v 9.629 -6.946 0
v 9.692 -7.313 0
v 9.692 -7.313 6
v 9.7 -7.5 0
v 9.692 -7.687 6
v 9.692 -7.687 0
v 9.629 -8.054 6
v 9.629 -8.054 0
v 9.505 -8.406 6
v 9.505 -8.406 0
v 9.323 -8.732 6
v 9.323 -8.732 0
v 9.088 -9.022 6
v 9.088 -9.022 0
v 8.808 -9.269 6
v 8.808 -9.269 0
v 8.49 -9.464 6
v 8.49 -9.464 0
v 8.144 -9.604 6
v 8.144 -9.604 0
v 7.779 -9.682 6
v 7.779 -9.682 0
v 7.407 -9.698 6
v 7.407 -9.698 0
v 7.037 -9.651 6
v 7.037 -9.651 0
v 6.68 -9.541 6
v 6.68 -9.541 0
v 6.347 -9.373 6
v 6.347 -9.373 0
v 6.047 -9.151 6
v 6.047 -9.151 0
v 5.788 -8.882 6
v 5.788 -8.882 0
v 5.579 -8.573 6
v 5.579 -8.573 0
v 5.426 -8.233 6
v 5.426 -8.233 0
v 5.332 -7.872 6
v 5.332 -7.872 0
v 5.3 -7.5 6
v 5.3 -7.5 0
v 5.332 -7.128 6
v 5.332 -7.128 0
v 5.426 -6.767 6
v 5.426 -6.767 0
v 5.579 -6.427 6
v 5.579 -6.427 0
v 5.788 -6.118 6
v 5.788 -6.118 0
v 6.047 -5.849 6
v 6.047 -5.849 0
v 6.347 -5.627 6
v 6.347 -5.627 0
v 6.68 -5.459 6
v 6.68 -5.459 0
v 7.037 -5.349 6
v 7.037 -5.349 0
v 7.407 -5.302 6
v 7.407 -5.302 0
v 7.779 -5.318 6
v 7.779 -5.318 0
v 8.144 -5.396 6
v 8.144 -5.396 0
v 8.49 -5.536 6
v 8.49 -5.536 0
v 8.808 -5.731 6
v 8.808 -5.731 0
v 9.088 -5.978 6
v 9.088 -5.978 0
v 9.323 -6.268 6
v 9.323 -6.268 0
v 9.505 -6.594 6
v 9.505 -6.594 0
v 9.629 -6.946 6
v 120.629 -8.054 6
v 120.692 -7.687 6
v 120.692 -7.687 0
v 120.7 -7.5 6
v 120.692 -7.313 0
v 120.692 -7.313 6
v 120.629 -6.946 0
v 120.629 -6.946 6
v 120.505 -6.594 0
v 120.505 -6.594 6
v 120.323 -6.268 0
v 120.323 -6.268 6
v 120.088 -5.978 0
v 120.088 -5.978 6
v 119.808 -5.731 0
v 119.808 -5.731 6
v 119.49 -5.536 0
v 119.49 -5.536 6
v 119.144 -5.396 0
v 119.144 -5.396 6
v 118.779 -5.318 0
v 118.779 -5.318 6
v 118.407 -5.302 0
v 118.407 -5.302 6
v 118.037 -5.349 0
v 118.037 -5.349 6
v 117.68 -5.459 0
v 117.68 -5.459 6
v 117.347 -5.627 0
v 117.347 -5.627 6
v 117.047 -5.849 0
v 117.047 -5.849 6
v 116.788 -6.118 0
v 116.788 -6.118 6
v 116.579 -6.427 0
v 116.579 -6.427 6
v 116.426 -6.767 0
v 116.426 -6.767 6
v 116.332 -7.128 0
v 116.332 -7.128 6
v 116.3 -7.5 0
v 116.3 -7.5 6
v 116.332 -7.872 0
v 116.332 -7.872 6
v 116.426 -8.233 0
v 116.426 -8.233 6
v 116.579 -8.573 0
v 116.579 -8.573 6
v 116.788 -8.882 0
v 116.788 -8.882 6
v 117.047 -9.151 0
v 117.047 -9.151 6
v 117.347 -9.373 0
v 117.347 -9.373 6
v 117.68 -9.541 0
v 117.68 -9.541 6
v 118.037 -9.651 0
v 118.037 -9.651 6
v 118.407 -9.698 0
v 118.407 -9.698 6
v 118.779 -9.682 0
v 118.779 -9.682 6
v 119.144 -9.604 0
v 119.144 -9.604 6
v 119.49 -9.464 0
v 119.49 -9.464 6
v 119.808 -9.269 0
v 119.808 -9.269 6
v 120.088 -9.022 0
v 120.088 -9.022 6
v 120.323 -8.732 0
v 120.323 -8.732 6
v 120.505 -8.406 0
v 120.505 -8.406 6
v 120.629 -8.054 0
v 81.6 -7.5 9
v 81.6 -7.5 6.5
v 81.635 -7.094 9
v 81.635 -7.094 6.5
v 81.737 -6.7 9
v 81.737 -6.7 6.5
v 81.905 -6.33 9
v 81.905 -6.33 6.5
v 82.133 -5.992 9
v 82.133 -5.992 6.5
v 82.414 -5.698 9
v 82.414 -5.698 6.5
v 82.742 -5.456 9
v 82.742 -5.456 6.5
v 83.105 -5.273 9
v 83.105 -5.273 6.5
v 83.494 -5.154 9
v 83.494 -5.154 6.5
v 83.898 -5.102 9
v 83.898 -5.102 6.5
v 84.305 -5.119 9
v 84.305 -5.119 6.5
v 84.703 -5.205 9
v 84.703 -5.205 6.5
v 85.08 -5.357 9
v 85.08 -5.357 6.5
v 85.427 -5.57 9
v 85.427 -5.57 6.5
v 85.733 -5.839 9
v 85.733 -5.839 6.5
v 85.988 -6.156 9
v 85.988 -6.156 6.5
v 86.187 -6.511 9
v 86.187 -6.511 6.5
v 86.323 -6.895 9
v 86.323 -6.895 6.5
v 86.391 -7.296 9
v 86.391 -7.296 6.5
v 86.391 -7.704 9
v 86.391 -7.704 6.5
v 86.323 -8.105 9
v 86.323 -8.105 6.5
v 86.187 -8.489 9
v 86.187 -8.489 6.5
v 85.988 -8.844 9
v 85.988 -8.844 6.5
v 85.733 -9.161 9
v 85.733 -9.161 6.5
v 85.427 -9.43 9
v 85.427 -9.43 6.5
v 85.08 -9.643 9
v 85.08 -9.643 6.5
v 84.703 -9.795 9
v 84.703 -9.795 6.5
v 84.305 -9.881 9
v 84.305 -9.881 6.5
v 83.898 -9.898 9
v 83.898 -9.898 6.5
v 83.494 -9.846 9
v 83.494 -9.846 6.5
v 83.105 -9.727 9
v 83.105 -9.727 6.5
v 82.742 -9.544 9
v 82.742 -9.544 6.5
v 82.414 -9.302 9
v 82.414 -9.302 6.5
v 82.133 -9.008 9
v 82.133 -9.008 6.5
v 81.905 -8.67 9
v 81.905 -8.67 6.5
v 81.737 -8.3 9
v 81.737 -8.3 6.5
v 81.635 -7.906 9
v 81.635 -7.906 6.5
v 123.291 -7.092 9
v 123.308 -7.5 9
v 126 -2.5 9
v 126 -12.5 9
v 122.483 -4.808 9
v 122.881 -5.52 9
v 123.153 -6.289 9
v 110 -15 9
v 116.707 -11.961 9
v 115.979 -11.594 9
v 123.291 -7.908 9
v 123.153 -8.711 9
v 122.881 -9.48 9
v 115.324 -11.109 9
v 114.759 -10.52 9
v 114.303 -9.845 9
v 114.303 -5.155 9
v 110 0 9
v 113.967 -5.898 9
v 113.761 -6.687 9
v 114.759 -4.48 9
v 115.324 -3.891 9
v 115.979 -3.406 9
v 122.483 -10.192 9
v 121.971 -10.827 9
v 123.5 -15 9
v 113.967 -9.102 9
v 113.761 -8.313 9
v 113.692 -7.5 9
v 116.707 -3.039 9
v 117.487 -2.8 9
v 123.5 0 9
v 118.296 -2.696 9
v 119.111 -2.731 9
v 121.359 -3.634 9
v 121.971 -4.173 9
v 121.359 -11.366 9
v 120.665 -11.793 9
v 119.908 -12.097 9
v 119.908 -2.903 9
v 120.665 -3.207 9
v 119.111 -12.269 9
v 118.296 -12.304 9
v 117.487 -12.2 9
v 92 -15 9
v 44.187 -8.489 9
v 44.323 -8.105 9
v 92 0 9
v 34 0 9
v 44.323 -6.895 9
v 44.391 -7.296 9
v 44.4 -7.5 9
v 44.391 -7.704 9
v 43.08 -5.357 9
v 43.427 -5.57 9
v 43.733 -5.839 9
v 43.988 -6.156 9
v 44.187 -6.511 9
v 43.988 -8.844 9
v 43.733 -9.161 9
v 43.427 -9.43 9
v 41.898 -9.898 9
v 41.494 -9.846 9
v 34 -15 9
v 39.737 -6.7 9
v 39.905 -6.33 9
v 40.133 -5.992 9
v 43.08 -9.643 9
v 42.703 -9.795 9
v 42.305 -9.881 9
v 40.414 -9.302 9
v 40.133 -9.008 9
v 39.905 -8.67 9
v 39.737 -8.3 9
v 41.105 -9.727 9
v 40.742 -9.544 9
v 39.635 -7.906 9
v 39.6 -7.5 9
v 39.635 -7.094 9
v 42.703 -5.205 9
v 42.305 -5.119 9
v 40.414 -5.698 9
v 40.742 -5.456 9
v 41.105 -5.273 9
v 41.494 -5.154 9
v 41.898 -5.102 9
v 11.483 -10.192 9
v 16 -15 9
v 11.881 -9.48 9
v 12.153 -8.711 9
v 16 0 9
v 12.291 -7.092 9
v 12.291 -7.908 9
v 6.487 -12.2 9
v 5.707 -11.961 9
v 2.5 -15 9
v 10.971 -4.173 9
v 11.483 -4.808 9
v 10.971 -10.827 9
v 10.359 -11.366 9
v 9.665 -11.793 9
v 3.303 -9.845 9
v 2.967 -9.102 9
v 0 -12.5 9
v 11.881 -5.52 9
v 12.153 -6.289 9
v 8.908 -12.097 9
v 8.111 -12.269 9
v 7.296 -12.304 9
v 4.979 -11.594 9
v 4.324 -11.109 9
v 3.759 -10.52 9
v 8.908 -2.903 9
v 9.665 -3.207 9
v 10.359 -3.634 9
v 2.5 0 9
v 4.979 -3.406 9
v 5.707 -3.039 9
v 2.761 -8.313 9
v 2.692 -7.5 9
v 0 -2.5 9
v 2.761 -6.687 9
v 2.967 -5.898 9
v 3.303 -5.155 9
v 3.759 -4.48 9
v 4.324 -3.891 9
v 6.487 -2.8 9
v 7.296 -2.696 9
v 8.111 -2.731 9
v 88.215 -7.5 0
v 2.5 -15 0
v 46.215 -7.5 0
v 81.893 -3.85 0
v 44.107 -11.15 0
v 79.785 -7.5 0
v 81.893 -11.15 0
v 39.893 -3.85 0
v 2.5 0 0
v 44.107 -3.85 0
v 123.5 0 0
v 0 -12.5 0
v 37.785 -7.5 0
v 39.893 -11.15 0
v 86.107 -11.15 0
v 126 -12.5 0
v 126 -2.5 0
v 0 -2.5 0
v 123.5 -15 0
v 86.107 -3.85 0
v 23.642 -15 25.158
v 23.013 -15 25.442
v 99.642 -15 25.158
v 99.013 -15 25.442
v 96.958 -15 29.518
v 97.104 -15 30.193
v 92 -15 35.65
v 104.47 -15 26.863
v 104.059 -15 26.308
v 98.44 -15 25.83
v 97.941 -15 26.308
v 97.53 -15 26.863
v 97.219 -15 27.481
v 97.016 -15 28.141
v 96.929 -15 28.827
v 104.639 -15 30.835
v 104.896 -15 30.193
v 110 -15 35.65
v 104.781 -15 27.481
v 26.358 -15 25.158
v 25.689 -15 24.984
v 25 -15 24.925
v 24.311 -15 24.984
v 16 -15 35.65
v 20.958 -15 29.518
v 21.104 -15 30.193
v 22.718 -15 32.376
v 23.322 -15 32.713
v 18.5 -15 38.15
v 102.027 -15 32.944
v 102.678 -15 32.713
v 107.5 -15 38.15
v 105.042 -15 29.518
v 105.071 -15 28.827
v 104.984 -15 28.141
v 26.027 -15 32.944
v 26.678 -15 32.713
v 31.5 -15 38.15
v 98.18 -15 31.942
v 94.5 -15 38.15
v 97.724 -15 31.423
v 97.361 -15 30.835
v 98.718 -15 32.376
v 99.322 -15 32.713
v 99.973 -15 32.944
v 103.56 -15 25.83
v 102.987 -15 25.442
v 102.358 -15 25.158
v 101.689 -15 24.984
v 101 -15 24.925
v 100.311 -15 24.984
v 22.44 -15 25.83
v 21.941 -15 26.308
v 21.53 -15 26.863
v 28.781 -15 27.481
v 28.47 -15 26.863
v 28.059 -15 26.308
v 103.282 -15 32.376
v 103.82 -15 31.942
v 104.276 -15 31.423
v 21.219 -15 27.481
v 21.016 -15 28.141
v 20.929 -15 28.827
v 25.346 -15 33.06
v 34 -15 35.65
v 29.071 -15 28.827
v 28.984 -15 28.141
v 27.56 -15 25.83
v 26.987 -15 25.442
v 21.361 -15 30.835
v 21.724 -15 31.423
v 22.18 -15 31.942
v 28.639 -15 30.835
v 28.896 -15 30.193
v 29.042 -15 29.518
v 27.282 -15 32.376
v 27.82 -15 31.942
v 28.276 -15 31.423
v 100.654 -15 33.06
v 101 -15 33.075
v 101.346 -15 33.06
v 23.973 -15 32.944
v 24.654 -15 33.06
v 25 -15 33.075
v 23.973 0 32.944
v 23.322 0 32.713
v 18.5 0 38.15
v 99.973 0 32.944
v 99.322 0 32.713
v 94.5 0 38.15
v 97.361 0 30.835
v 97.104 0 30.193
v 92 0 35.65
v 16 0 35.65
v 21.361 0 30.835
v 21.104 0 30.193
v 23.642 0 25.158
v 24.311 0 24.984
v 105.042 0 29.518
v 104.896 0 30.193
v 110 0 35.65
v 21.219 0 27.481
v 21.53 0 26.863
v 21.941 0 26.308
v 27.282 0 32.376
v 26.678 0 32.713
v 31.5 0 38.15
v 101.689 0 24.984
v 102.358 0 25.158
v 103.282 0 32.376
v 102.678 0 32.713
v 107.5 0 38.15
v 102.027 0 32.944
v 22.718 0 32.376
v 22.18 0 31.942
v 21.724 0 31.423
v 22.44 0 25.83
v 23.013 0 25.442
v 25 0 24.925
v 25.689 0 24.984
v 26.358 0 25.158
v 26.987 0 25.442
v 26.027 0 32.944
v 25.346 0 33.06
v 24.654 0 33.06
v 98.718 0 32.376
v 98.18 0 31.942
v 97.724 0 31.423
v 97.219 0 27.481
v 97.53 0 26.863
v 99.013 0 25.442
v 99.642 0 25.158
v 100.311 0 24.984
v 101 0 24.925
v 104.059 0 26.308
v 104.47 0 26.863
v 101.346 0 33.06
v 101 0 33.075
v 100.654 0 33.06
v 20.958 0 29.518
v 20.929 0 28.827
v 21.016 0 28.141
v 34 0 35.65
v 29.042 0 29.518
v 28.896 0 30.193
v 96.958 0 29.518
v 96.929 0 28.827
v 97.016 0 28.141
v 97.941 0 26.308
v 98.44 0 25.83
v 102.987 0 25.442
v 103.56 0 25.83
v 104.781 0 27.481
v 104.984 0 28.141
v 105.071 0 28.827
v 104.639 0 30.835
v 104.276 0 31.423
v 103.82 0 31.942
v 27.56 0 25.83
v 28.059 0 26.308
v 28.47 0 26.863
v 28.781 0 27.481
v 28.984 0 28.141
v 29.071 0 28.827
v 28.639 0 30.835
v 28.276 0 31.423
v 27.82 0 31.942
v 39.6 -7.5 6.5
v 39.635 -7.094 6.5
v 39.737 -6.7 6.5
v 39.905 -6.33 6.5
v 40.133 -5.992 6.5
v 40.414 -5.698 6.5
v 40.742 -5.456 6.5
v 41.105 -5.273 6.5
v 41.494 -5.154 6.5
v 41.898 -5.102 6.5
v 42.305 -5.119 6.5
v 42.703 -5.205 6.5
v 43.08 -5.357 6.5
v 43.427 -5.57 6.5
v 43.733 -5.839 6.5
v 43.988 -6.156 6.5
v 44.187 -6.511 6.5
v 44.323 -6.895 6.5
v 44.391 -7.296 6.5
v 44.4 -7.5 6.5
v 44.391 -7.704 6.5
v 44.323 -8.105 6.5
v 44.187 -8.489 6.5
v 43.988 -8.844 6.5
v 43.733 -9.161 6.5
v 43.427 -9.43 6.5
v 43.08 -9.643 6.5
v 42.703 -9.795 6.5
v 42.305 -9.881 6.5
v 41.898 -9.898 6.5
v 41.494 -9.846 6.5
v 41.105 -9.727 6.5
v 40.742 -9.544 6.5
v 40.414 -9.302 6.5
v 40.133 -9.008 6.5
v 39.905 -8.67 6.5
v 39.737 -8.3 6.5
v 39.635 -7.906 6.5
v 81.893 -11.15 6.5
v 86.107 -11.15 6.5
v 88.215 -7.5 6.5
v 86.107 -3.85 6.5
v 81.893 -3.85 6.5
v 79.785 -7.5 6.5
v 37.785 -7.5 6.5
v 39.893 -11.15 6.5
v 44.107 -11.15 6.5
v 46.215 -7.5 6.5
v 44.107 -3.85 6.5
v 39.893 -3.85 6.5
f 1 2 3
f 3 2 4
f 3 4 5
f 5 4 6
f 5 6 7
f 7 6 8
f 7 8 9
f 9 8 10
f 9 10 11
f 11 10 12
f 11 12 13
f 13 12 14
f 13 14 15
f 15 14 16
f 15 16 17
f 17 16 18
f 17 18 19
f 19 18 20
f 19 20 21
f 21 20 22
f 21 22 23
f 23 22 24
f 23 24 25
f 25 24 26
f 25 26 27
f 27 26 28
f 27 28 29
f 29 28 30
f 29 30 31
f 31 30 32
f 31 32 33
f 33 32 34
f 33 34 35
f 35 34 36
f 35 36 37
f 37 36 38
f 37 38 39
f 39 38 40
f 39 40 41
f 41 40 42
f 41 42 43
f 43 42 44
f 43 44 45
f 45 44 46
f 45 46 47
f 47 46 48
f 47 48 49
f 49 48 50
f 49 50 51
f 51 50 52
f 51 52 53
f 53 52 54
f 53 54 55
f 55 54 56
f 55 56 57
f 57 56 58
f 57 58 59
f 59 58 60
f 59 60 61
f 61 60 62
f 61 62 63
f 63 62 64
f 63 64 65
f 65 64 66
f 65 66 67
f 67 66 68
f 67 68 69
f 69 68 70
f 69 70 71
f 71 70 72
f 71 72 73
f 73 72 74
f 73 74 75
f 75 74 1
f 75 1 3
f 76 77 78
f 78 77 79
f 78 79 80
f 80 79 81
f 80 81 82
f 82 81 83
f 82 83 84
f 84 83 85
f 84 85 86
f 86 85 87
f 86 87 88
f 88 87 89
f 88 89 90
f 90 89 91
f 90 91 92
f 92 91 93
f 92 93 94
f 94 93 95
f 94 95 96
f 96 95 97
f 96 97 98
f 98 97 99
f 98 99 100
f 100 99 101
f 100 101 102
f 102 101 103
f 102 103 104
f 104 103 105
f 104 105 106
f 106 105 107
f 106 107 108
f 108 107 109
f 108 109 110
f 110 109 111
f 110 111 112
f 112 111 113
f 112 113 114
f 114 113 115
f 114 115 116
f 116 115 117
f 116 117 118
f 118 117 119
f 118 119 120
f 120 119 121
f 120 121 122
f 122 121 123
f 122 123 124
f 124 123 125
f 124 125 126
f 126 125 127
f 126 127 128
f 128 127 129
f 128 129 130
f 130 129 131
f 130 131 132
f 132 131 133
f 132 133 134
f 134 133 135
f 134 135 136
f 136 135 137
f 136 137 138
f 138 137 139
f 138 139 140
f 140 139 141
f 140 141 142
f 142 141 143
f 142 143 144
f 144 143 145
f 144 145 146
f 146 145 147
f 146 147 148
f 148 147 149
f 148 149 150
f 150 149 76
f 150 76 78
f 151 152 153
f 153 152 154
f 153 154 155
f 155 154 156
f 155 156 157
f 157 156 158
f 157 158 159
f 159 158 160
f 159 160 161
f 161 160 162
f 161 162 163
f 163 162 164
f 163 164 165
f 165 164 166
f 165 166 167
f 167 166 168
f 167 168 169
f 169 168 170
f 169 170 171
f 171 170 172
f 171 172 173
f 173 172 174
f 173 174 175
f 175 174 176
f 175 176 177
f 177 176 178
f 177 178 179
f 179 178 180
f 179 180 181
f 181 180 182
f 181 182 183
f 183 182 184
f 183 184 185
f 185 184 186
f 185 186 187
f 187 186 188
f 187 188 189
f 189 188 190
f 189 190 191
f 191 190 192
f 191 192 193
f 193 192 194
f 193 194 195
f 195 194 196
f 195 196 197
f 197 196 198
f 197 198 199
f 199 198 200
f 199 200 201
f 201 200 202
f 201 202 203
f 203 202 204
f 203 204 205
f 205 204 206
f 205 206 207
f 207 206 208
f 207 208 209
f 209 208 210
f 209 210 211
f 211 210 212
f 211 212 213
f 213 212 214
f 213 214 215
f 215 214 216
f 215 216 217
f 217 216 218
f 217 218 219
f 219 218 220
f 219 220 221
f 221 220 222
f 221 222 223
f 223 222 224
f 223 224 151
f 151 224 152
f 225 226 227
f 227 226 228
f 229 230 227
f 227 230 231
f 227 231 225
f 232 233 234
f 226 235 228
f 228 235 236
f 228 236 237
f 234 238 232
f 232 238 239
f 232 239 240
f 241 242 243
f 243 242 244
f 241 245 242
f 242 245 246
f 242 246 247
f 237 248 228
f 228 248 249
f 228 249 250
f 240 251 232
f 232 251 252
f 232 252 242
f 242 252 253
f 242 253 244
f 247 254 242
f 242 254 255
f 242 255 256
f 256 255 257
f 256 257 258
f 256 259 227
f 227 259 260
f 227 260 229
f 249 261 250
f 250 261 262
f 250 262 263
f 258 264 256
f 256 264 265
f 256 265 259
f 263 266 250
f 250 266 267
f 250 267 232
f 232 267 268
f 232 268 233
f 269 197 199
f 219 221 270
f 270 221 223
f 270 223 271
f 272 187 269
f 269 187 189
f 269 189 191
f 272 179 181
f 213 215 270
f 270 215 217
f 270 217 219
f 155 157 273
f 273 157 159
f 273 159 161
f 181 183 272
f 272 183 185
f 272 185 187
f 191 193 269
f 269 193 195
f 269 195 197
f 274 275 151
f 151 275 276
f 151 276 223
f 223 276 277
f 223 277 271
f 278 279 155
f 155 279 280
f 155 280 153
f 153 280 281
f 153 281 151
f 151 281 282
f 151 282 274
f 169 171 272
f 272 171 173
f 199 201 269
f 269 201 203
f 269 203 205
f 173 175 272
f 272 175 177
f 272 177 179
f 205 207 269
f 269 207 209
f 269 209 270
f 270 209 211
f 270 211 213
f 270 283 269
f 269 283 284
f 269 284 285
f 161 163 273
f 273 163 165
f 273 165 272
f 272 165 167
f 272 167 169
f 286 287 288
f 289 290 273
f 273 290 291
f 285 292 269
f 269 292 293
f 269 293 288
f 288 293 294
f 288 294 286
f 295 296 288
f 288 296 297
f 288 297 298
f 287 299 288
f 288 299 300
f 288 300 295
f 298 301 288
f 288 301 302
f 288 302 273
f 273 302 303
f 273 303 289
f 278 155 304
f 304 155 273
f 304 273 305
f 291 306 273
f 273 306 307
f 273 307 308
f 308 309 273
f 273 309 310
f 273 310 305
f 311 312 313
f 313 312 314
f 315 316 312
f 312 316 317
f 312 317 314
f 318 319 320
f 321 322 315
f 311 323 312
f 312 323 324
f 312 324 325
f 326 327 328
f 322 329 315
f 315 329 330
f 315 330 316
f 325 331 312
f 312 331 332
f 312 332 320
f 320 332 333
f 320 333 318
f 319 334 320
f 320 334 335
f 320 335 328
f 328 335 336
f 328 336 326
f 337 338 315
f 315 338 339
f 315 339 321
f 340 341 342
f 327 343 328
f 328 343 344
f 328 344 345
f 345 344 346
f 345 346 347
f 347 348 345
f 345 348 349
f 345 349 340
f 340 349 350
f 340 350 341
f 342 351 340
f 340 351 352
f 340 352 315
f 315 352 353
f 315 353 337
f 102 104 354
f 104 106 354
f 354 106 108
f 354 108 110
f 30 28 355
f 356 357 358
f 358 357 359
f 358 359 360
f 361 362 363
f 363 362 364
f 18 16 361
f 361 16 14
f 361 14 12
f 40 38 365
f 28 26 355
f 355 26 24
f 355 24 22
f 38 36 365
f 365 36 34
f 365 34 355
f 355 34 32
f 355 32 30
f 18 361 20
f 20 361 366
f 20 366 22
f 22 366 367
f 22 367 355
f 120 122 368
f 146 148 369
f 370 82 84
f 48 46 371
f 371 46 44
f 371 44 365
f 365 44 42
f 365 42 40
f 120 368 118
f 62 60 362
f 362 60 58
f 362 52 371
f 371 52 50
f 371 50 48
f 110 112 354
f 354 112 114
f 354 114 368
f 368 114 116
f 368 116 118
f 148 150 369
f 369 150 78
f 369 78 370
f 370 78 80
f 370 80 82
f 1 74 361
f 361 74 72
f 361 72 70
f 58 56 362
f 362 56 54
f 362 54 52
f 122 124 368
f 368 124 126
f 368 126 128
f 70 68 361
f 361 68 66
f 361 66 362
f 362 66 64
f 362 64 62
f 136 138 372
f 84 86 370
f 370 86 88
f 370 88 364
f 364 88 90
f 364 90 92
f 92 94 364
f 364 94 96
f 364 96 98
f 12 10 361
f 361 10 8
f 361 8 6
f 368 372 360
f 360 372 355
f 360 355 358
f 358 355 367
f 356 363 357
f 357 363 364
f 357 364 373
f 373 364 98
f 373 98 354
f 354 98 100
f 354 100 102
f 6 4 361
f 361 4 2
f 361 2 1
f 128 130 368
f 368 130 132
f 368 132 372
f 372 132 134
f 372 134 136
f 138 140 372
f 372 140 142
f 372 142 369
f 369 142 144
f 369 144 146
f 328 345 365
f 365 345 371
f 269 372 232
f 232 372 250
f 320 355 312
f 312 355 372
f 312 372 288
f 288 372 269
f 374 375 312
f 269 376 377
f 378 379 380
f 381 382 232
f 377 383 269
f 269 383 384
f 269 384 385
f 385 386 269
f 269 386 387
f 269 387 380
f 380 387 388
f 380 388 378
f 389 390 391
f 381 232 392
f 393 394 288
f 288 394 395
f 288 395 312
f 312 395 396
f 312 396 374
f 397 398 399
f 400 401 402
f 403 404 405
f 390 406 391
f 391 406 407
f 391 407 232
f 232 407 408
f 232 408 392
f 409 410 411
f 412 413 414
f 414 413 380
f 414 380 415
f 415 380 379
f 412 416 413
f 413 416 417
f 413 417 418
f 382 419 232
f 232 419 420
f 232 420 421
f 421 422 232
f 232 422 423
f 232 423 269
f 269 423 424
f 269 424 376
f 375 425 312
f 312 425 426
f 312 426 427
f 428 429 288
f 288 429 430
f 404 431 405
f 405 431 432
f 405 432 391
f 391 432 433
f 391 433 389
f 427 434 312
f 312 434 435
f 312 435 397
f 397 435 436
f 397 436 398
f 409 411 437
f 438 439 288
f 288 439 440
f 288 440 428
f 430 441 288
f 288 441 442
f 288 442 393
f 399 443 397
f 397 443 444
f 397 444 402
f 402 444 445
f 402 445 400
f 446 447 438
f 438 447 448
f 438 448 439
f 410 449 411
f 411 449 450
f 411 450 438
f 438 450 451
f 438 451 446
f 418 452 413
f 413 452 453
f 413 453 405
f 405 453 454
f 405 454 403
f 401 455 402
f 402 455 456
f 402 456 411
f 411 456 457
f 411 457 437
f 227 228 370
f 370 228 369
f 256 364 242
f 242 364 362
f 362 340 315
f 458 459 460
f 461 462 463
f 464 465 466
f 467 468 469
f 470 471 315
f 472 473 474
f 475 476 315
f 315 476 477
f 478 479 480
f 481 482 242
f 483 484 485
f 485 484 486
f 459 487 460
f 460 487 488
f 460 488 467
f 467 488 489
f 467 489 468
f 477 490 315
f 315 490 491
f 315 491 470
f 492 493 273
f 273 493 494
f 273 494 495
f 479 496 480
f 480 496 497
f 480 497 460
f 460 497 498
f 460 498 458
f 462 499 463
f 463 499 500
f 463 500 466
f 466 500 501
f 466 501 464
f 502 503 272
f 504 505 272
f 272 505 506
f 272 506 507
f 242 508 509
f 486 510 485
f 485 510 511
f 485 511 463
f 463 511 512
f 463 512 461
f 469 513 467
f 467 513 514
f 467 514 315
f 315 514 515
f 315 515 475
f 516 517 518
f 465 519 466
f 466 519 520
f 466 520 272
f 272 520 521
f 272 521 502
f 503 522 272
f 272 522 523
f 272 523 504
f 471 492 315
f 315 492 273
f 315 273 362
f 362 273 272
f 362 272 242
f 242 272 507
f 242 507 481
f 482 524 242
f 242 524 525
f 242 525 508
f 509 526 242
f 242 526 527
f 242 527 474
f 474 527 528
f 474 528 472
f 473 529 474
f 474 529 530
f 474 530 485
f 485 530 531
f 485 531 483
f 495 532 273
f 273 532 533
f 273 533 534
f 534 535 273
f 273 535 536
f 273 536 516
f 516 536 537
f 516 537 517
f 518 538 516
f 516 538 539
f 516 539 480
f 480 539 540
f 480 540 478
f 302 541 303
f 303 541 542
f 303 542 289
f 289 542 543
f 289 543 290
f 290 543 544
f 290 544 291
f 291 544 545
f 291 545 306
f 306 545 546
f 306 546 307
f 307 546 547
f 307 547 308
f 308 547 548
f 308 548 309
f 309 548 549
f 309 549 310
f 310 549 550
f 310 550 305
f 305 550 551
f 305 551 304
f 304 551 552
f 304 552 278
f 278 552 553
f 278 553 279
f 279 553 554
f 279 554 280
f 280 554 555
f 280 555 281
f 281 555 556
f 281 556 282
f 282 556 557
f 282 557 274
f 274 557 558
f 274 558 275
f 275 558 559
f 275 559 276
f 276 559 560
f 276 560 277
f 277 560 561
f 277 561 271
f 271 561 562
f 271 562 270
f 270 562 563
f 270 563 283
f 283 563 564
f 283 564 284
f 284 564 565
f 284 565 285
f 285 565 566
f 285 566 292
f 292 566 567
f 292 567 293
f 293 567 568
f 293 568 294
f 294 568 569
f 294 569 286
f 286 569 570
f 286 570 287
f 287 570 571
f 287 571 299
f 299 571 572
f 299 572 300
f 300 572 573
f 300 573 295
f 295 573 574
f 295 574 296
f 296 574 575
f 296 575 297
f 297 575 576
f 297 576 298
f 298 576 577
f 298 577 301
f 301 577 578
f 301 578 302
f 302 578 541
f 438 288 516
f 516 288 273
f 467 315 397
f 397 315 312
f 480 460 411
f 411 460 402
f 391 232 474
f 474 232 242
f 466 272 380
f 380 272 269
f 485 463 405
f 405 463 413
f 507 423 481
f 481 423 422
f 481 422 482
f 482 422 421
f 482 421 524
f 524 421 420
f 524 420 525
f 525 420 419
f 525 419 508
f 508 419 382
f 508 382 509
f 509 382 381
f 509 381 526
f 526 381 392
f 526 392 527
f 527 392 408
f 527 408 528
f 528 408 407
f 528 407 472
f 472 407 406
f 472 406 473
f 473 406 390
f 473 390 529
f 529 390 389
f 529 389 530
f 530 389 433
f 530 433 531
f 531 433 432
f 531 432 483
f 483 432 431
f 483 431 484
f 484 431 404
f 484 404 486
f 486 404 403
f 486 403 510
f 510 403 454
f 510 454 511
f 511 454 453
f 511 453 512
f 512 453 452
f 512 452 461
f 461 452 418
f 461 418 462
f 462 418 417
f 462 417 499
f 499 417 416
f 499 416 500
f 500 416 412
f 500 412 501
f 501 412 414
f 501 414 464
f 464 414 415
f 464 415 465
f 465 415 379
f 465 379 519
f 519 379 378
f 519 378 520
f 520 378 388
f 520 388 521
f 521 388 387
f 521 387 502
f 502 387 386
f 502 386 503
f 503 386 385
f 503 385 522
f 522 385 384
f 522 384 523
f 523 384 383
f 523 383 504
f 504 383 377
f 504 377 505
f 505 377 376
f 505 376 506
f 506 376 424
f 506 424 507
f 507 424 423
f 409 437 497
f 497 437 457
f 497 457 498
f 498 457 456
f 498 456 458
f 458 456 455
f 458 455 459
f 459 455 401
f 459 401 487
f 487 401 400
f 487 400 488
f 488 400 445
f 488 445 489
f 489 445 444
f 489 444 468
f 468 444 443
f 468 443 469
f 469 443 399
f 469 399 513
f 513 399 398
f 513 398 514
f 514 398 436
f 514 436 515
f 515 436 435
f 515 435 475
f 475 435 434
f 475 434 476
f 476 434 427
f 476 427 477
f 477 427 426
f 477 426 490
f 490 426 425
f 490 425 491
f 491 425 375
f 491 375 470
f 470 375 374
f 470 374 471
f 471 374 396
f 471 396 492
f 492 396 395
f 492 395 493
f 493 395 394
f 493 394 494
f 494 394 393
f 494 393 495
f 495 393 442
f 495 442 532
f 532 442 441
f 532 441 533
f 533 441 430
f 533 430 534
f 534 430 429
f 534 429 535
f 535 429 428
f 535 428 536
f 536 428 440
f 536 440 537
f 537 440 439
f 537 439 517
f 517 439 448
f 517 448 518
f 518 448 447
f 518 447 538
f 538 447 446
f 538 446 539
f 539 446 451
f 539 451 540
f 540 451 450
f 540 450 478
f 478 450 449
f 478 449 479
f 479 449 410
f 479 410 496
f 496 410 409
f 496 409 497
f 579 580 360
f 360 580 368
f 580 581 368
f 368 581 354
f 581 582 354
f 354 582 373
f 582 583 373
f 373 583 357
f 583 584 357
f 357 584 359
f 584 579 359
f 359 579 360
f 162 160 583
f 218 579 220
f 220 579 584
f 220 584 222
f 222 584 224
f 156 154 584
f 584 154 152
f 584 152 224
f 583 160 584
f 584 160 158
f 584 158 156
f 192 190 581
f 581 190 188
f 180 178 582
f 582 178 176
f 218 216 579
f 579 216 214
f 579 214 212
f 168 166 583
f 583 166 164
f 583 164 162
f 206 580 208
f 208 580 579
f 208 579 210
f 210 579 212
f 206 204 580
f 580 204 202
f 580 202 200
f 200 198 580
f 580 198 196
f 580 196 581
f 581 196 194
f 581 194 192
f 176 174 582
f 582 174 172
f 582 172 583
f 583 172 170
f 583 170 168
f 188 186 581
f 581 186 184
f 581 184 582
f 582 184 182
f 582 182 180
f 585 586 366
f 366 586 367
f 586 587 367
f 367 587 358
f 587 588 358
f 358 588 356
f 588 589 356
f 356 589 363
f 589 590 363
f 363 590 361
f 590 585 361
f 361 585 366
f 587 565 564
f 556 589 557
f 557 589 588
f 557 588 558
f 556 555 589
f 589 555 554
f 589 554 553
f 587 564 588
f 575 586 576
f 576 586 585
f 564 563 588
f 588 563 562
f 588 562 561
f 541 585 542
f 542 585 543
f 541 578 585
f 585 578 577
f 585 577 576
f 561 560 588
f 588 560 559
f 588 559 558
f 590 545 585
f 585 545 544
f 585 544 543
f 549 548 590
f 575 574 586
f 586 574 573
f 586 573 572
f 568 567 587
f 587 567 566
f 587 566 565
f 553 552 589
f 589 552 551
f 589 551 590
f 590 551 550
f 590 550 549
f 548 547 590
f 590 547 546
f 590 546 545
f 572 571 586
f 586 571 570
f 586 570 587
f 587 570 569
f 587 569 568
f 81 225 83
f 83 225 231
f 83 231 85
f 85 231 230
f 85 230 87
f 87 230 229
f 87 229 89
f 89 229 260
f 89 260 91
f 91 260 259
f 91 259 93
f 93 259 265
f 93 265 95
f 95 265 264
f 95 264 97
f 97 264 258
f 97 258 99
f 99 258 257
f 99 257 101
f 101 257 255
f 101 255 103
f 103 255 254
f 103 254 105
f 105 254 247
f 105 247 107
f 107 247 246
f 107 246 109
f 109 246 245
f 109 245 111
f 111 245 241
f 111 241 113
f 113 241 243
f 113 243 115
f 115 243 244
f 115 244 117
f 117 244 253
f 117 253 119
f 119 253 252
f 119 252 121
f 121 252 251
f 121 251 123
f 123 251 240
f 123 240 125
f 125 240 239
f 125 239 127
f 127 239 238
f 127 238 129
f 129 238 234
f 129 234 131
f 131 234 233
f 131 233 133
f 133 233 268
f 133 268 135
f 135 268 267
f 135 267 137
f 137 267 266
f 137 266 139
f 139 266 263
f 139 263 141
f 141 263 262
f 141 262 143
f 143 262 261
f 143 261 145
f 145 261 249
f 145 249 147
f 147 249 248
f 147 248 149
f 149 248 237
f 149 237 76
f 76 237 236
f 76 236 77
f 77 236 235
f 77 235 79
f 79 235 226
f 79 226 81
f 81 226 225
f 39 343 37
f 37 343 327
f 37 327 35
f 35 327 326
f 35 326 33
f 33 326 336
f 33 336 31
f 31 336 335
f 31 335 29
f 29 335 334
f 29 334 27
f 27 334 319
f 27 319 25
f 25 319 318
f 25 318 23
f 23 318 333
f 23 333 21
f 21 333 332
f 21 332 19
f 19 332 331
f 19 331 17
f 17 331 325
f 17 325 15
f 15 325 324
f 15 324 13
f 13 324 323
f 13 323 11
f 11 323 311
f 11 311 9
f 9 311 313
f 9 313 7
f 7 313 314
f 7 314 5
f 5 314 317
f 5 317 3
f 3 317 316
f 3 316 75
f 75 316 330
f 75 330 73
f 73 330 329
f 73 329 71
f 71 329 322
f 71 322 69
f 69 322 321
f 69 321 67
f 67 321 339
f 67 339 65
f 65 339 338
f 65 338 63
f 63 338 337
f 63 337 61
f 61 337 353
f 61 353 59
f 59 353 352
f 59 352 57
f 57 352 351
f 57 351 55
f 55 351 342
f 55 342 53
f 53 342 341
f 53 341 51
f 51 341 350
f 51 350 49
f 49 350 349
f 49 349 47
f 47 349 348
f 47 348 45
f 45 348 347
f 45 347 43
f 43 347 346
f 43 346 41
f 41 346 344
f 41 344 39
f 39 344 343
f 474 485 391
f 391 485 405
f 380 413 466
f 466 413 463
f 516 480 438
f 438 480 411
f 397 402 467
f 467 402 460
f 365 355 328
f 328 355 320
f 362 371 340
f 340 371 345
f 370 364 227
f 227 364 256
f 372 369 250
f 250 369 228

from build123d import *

# Parameters (mm, degrees)
SKETCH1_W               = 126
SKETCH1_H               = 15
SKETCH1_R               = 2.4
SKETCH1_R_2             = 2.2
BOSS_EXTRUDE1_DEPTH     = 9
SKETCH2_W               = 18
SKETCH2_H               = 15
BOSS_EXTRUDE2_DEPTH     = 29.15
CUT_EXTRUDE1_DEPTH      = 133.500650942
CUT_EXTRUDE1_DEPTH_BACK = 133.500650942
SKETCH4_R               = 4.075
CUT_EXTRUDE2_DEPTH      = 6.5
CHAMFER1_SIZE           = 2.5


with BuildPart() as part:
    # Sketch1 → Boss-Extrude1 (new body)
    with BuildSketch(Plane.XY):
        with Locations((63, -7.5)):
            Rectangle(SKETCH1_W, SKETCH1_H)
        with Locations((42, -7.5)):
            Circle(SKETCH1_R, mode=Mode.SUBTRACT)
        with Locations((7.5, -7.5)):
            Circle(SKETCH1_R_2, mode=Mode.SUBTRACT)
        with Locations(Location((118.5, -7.5, 0), (0, 0, 180))):
            Circle(SKETCH1_R_2, mode=Mode.SUBTRACT)
        with Locations(Location((84, -7.5, 0), (0, 0, 180))):
            Circle(SKETCH1_R, mode=Mode.SUBTRACT)
    extrude(amount=BOSS_EXTRUDE1_DEPTH)

    # Sketch2 → Boss-Extrude2 (add)
    with BuildSketch(Plane.XY.offset(9)):
        with Locations((101, -7.5)):
            Rectangle(SKETCH2_W, SKETCH2_H)
        with Locations((25, -7.5)):
            Rectangle(SKETCH2_W, SKETCH2_H)
    extrude(amount=BOSS_EXTRUDE2_DEPTH)

    # Sketch4 → Cut-Extrude1 (cut, two sides: drawn at the far end of the back side and taken through both)
    with BuildSketch(Plane.XZ.offset(15).offset(-CUT_EXTRUDE1_DEPTH_BACK)):
        with Locations(Location((25, 29, 0), (0, 0, 270))):
            Circle(SKETCH4_R)
        with Locations(Location((101, 29, 0), (0, 0, 90))):
            Circle(SKETCH4_R)
    extrude(amount=CUT_EXTRUDE1_DEPTH + CUT_EXTRUDE1_DEPTH_BACK, mode=Mode.SUBTRACT)

    # Sketch5 → Cut-Extrude2 (cut)
    with BuildSketch(Plane(origin=(0, 0, 0), x_dir=(-1, 0, 0), z_dir=(0, 0, -1))):
        Polygon((-81.892671517, -11.15), (-79.785343035, -7.5), (-81.892671517, -3.85), (-86.107328483, -3.85), (-88.214656965, -7.5), (-86.107328483, -11.15), align=None)
        Polygon((-39.892671517, -11.15), (-44.107328483, -11.15), (-46.214656965, -7.5), (-44.107328483, -3.85), (-39.892671517, -3.85), (-37.785343035, -7.5), align=None)
    extrude(amount=-CUT_EXTRUDE2_DEPTH, mode=Mode.SUBTRACT)

    # Sketch7 → Cut-Revolve1 (revolve, cut)
    with BuildSketch(Plane(origin=(118.5, 0, 0), x_dir=(0, 0, -1), z_dir=(1, 0, 0)), mode=Mode.PRIVATE) as cut_revolve1_sk:
        Polygon((-9, -7.5), (-6, -7.5), (-6, -5.3), (-9, -2.692139787), align=None)
    cut_revolve1 = revolve(cut_revolve1_sk.sketch.rotate(Axis((118.5, -7.5, 9), (0, 0, -1)), 270), axis=Axis((118.5, -7.5, 9), (0, 0, -1)), mode=Mode.SUBTRACT)

    # Mirror1: Cut-Revolve1 across plane
    add(cut_revolve1.mirror(Plane(origin=(63, 0, 0), x_dir=(0, 0, 1), z_dir=(1, 0, 0))), mode=Mode.SUBTRACT)

    # Chamfer1
    chamfer1_edges = [part.edges().sort_by_distance(p)[0] for p in [
        (34, -7.5, 38.15),
        (16, -7.5, 38.15),
        (110, -7.5, 38.15),
        (92, -7.5, 38.15),
        (0, 0, 4.5),
        (126, 0, 4.5),
        (126, -15, 4.5),
        (0, -15, 4.5),
    ]]
    chamfer(chamfer1_edges, length=CHAMFER1_SIZE)


solid = part.part
